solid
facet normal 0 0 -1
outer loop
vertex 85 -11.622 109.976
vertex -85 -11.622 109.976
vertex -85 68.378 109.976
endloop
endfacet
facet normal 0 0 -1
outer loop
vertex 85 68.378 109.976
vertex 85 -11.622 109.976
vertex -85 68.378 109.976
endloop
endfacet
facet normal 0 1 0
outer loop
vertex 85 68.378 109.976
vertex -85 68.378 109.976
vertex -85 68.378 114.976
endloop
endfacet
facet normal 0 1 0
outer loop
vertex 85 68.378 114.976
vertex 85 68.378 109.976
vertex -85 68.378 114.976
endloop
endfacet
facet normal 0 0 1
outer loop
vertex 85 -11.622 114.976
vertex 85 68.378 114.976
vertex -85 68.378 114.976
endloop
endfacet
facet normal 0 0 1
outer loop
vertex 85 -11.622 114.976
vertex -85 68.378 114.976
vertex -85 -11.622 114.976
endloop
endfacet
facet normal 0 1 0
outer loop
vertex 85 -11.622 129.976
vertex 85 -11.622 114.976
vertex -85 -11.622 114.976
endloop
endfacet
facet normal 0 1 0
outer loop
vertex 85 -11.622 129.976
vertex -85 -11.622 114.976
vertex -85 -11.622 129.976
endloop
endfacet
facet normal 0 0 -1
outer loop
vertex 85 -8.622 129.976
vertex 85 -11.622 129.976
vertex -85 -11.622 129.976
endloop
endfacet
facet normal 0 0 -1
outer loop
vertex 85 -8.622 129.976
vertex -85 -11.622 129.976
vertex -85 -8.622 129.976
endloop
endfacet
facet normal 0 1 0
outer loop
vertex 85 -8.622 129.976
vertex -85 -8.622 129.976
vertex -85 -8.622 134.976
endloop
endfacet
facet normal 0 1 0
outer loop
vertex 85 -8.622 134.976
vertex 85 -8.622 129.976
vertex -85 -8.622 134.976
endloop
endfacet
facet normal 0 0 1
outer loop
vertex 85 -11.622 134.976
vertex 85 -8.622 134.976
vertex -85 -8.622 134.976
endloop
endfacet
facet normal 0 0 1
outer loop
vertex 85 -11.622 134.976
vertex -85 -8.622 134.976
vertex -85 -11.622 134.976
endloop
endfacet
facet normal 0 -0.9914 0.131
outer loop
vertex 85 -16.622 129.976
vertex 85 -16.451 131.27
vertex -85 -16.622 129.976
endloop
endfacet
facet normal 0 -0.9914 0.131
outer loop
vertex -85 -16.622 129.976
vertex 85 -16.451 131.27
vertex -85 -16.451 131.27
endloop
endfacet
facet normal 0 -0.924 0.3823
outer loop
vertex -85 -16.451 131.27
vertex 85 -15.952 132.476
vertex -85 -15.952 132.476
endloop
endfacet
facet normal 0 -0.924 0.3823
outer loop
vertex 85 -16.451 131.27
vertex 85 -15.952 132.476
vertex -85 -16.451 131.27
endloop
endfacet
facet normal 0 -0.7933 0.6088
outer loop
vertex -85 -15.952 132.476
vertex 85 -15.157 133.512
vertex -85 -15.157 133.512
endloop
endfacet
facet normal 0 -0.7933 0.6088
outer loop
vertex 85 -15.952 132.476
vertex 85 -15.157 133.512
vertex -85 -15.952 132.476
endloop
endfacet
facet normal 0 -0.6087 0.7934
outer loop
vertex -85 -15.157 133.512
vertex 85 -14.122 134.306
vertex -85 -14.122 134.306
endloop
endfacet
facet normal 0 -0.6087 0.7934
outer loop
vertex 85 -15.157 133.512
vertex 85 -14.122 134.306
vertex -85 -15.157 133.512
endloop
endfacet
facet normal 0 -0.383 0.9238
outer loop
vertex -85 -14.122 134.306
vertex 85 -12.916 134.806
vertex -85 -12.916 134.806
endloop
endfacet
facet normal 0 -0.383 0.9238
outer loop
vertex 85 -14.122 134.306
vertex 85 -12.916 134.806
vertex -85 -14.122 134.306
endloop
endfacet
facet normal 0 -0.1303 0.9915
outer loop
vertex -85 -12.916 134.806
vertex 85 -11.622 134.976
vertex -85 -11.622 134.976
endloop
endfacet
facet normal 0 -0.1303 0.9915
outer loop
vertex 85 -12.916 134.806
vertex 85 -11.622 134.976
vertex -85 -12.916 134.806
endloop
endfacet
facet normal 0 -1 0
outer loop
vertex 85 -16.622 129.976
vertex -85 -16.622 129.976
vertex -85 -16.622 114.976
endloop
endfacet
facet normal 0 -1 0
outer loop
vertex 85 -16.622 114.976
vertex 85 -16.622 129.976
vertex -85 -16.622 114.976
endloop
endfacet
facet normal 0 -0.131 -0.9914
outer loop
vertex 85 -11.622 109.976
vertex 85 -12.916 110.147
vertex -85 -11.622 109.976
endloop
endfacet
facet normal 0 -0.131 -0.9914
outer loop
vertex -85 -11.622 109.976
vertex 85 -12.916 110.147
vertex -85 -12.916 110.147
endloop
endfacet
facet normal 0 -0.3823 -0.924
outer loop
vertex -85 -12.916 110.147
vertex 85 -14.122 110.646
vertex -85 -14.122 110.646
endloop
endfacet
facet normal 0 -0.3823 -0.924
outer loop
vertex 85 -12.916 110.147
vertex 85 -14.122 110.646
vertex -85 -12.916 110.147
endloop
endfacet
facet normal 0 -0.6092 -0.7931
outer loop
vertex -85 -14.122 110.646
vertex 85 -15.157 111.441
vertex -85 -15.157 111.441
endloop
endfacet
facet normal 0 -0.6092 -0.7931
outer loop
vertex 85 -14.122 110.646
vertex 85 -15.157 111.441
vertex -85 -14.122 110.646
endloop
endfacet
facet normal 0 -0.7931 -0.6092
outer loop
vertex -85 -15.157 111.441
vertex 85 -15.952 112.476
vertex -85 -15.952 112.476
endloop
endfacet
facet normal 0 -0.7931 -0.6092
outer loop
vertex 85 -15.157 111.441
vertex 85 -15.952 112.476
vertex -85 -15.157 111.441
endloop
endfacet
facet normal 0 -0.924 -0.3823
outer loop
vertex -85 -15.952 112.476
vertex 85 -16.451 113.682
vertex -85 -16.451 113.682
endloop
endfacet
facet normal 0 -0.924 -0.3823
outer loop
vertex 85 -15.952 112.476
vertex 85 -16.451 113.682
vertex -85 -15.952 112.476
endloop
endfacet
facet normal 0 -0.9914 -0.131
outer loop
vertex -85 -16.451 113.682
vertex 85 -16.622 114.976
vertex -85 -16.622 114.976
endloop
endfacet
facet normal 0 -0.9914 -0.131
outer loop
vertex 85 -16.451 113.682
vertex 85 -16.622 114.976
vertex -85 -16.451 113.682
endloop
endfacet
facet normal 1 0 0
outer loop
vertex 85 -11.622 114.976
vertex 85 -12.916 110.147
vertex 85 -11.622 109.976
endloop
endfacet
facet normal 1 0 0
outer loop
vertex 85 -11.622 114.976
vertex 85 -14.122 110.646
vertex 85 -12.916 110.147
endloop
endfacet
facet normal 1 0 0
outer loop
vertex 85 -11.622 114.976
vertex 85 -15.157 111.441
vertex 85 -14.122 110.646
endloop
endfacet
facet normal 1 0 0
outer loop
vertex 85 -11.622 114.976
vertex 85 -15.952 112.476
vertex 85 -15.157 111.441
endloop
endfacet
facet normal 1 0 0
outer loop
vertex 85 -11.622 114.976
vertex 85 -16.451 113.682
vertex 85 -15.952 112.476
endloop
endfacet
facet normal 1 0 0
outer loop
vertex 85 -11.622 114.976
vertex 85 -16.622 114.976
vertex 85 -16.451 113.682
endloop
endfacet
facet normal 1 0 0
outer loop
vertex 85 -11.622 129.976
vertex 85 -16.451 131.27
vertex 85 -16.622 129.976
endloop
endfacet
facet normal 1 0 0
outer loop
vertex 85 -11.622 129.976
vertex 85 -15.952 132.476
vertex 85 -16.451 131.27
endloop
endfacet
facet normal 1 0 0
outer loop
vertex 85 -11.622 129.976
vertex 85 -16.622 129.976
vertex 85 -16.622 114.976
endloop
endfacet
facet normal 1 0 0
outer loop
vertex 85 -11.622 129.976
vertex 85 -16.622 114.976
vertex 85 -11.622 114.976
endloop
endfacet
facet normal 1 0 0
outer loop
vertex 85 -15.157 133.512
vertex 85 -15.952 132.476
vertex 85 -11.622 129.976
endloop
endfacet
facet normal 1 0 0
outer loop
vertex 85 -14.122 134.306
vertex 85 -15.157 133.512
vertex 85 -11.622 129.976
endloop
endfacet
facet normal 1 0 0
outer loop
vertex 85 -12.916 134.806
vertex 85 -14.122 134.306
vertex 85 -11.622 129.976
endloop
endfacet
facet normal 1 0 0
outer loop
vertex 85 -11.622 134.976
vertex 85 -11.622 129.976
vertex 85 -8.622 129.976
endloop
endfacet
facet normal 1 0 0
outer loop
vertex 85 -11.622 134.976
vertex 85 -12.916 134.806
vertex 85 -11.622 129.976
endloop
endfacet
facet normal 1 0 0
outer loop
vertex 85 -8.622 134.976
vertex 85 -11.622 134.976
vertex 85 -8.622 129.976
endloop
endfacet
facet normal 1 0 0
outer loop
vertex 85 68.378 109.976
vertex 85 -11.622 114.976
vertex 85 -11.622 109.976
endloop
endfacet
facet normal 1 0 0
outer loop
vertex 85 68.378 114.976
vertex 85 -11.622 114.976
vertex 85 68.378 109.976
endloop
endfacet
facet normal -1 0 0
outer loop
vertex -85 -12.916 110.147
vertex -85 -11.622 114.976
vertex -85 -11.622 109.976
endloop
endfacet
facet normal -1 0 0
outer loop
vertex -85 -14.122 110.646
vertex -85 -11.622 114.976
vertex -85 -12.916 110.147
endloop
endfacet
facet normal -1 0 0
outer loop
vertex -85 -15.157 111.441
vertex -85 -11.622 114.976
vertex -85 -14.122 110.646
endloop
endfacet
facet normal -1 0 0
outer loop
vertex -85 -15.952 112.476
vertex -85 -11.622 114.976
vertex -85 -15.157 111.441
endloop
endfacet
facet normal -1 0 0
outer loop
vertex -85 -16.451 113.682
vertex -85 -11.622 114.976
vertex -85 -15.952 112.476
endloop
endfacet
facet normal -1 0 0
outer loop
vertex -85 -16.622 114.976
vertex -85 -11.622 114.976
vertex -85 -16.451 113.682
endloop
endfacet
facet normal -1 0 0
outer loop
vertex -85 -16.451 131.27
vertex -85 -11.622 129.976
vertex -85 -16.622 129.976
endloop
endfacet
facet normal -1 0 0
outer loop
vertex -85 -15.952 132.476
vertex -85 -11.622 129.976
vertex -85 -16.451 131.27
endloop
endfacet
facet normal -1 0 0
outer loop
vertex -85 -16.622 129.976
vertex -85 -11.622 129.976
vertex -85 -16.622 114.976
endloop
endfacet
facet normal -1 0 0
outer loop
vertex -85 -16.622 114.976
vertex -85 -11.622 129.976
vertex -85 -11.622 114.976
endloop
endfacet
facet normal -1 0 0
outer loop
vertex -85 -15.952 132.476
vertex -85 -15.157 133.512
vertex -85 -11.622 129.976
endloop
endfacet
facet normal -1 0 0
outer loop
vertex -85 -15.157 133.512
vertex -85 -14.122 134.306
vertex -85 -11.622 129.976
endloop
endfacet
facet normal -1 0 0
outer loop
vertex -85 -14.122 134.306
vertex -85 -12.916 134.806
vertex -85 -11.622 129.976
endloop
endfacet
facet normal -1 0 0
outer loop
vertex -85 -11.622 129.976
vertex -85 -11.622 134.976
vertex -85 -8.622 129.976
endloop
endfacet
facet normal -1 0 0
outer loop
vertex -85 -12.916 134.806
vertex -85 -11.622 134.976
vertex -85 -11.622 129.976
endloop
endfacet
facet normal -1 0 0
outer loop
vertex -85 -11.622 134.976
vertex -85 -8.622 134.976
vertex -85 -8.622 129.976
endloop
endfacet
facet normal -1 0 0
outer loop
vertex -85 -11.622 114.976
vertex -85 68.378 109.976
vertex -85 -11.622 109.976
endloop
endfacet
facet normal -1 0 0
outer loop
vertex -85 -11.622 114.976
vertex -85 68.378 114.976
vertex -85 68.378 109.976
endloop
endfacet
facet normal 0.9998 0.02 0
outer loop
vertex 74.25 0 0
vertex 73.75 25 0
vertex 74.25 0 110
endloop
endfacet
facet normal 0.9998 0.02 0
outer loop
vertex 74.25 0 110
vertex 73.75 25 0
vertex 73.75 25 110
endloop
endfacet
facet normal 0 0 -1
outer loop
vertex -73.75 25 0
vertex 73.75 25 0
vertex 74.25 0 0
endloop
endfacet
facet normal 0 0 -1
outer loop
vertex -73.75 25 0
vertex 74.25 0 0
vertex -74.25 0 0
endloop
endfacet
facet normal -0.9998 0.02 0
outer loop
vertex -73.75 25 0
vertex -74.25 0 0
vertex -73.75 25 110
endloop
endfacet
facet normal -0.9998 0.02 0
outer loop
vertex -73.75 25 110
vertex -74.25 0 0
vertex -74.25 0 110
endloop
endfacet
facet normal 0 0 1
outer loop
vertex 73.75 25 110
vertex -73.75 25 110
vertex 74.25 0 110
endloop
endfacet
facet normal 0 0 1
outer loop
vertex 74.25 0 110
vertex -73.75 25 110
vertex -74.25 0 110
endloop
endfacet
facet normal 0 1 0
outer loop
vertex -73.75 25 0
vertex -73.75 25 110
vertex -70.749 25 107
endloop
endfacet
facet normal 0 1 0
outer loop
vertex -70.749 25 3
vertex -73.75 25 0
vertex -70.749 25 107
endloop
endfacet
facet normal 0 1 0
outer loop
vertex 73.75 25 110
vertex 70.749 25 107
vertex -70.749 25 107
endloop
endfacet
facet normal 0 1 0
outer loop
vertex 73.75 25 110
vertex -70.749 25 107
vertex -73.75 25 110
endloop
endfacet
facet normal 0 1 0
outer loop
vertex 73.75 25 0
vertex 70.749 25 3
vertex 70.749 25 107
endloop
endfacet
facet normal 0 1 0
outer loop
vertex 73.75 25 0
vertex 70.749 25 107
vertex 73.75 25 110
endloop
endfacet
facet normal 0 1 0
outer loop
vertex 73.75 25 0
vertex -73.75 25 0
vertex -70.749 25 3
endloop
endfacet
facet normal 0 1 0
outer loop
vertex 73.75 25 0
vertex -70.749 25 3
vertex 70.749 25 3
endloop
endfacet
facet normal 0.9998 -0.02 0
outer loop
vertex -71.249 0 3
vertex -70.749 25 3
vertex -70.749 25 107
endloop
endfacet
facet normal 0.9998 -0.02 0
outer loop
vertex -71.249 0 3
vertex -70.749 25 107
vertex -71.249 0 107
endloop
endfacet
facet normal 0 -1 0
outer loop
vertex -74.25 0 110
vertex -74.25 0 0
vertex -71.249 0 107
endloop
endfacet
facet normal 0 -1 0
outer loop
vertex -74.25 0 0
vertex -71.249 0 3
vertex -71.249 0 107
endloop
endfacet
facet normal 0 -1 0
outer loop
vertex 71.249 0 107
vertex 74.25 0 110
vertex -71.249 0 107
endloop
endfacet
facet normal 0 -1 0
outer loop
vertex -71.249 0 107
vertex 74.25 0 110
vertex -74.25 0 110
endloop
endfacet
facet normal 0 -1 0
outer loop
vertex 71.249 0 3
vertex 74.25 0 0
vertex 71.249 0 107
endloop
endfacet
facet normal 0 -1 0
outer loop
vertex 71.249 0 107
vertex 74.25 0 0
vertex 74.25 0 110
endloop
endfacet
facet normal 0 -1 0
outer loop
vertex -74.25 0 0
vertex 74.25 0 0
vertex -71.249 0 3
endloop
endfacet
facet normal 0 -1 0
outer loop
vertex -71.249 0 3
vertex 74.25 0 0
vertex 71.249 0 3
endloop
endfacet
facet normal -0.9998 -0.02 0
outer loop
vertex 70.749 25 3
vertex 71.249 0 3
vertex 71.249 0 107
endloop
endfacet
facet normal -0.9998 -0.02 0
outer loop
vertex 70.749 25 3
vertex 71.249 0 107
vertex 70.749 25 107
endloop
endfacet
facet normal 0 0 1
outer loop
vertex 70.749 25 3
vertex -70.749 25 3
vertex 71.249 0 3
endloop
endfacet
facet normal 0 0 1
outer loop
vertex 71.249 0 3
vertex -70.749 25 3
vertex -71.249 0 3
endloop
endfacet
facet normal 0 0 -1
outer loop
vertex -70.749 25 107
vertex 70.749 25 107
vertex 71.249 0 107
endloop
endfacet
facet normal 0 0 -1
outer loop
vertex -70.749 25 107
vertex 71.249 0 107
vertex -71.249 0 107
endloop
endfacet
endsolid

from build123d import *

# Parameters (mm, degrees)
PAD_DEPTH    = 110
THICKNESS_T  = -3
PAD001_DEPTH = 85


with BuildPart() as enclosure:
    # Sketch → Pad (new body)
    with BuildSketch(Plane.XY):
        Polygon((-73.75, 25), (73.75, 25), (74.25, 0), (-74.25, 0), align=None)
    extrude(amount=PAD_DEPTH)

    # Thickness
    thickness_openings = [enclosure.faces().sort_by_distance(p)[0] for p in [
        (0, 0, 55),
        (0, 25, 55),
    ]]
    offset(amount=THICKNESS_T, openings=thickness_openings)


with BuildPart() as support:
    # Sketch001 → Pad001 (new body, symmetric)
    with BuildSketch(Plane(origin=(0, 0, 0), x_dir=(0, -1, 0), z_dir=(-1, 0, 0))):
        with BuildLine():
            Line((-68.378413, 114.976162), (11.621587, 114.976162))
            Line((11.621587, 114.976162), (11.621587, 129.976162))
            Line((11.621587, 129.976162), (8.621586, 129.976162))
            Line((8.621586, 129.976162), (8.621586, 134.976162))
            Line((8.621586, 134.976162), (11.621586, 134.976162))
            ThreePointArc((16.621587, 129.976162), (15.15712, 133.511696), (11.621586, 134.976162))
            Line((16.621587, 129.976162), (16.621587, 114.976162))
            ThreePointArc((11.621587, 109.976162), (15.157121, 111.440628), (16.621587, 114.976162))
            Line((11.621587, 109.976162), (-68.378413, 109.976162))
            Line((-68.378413, 109.976162), (-68.378413, 114.976162))
        make_face()
    extrude(amount=PAD001_DEPTH, both=True)


solid = Compound([enclosure.part, support.part])
